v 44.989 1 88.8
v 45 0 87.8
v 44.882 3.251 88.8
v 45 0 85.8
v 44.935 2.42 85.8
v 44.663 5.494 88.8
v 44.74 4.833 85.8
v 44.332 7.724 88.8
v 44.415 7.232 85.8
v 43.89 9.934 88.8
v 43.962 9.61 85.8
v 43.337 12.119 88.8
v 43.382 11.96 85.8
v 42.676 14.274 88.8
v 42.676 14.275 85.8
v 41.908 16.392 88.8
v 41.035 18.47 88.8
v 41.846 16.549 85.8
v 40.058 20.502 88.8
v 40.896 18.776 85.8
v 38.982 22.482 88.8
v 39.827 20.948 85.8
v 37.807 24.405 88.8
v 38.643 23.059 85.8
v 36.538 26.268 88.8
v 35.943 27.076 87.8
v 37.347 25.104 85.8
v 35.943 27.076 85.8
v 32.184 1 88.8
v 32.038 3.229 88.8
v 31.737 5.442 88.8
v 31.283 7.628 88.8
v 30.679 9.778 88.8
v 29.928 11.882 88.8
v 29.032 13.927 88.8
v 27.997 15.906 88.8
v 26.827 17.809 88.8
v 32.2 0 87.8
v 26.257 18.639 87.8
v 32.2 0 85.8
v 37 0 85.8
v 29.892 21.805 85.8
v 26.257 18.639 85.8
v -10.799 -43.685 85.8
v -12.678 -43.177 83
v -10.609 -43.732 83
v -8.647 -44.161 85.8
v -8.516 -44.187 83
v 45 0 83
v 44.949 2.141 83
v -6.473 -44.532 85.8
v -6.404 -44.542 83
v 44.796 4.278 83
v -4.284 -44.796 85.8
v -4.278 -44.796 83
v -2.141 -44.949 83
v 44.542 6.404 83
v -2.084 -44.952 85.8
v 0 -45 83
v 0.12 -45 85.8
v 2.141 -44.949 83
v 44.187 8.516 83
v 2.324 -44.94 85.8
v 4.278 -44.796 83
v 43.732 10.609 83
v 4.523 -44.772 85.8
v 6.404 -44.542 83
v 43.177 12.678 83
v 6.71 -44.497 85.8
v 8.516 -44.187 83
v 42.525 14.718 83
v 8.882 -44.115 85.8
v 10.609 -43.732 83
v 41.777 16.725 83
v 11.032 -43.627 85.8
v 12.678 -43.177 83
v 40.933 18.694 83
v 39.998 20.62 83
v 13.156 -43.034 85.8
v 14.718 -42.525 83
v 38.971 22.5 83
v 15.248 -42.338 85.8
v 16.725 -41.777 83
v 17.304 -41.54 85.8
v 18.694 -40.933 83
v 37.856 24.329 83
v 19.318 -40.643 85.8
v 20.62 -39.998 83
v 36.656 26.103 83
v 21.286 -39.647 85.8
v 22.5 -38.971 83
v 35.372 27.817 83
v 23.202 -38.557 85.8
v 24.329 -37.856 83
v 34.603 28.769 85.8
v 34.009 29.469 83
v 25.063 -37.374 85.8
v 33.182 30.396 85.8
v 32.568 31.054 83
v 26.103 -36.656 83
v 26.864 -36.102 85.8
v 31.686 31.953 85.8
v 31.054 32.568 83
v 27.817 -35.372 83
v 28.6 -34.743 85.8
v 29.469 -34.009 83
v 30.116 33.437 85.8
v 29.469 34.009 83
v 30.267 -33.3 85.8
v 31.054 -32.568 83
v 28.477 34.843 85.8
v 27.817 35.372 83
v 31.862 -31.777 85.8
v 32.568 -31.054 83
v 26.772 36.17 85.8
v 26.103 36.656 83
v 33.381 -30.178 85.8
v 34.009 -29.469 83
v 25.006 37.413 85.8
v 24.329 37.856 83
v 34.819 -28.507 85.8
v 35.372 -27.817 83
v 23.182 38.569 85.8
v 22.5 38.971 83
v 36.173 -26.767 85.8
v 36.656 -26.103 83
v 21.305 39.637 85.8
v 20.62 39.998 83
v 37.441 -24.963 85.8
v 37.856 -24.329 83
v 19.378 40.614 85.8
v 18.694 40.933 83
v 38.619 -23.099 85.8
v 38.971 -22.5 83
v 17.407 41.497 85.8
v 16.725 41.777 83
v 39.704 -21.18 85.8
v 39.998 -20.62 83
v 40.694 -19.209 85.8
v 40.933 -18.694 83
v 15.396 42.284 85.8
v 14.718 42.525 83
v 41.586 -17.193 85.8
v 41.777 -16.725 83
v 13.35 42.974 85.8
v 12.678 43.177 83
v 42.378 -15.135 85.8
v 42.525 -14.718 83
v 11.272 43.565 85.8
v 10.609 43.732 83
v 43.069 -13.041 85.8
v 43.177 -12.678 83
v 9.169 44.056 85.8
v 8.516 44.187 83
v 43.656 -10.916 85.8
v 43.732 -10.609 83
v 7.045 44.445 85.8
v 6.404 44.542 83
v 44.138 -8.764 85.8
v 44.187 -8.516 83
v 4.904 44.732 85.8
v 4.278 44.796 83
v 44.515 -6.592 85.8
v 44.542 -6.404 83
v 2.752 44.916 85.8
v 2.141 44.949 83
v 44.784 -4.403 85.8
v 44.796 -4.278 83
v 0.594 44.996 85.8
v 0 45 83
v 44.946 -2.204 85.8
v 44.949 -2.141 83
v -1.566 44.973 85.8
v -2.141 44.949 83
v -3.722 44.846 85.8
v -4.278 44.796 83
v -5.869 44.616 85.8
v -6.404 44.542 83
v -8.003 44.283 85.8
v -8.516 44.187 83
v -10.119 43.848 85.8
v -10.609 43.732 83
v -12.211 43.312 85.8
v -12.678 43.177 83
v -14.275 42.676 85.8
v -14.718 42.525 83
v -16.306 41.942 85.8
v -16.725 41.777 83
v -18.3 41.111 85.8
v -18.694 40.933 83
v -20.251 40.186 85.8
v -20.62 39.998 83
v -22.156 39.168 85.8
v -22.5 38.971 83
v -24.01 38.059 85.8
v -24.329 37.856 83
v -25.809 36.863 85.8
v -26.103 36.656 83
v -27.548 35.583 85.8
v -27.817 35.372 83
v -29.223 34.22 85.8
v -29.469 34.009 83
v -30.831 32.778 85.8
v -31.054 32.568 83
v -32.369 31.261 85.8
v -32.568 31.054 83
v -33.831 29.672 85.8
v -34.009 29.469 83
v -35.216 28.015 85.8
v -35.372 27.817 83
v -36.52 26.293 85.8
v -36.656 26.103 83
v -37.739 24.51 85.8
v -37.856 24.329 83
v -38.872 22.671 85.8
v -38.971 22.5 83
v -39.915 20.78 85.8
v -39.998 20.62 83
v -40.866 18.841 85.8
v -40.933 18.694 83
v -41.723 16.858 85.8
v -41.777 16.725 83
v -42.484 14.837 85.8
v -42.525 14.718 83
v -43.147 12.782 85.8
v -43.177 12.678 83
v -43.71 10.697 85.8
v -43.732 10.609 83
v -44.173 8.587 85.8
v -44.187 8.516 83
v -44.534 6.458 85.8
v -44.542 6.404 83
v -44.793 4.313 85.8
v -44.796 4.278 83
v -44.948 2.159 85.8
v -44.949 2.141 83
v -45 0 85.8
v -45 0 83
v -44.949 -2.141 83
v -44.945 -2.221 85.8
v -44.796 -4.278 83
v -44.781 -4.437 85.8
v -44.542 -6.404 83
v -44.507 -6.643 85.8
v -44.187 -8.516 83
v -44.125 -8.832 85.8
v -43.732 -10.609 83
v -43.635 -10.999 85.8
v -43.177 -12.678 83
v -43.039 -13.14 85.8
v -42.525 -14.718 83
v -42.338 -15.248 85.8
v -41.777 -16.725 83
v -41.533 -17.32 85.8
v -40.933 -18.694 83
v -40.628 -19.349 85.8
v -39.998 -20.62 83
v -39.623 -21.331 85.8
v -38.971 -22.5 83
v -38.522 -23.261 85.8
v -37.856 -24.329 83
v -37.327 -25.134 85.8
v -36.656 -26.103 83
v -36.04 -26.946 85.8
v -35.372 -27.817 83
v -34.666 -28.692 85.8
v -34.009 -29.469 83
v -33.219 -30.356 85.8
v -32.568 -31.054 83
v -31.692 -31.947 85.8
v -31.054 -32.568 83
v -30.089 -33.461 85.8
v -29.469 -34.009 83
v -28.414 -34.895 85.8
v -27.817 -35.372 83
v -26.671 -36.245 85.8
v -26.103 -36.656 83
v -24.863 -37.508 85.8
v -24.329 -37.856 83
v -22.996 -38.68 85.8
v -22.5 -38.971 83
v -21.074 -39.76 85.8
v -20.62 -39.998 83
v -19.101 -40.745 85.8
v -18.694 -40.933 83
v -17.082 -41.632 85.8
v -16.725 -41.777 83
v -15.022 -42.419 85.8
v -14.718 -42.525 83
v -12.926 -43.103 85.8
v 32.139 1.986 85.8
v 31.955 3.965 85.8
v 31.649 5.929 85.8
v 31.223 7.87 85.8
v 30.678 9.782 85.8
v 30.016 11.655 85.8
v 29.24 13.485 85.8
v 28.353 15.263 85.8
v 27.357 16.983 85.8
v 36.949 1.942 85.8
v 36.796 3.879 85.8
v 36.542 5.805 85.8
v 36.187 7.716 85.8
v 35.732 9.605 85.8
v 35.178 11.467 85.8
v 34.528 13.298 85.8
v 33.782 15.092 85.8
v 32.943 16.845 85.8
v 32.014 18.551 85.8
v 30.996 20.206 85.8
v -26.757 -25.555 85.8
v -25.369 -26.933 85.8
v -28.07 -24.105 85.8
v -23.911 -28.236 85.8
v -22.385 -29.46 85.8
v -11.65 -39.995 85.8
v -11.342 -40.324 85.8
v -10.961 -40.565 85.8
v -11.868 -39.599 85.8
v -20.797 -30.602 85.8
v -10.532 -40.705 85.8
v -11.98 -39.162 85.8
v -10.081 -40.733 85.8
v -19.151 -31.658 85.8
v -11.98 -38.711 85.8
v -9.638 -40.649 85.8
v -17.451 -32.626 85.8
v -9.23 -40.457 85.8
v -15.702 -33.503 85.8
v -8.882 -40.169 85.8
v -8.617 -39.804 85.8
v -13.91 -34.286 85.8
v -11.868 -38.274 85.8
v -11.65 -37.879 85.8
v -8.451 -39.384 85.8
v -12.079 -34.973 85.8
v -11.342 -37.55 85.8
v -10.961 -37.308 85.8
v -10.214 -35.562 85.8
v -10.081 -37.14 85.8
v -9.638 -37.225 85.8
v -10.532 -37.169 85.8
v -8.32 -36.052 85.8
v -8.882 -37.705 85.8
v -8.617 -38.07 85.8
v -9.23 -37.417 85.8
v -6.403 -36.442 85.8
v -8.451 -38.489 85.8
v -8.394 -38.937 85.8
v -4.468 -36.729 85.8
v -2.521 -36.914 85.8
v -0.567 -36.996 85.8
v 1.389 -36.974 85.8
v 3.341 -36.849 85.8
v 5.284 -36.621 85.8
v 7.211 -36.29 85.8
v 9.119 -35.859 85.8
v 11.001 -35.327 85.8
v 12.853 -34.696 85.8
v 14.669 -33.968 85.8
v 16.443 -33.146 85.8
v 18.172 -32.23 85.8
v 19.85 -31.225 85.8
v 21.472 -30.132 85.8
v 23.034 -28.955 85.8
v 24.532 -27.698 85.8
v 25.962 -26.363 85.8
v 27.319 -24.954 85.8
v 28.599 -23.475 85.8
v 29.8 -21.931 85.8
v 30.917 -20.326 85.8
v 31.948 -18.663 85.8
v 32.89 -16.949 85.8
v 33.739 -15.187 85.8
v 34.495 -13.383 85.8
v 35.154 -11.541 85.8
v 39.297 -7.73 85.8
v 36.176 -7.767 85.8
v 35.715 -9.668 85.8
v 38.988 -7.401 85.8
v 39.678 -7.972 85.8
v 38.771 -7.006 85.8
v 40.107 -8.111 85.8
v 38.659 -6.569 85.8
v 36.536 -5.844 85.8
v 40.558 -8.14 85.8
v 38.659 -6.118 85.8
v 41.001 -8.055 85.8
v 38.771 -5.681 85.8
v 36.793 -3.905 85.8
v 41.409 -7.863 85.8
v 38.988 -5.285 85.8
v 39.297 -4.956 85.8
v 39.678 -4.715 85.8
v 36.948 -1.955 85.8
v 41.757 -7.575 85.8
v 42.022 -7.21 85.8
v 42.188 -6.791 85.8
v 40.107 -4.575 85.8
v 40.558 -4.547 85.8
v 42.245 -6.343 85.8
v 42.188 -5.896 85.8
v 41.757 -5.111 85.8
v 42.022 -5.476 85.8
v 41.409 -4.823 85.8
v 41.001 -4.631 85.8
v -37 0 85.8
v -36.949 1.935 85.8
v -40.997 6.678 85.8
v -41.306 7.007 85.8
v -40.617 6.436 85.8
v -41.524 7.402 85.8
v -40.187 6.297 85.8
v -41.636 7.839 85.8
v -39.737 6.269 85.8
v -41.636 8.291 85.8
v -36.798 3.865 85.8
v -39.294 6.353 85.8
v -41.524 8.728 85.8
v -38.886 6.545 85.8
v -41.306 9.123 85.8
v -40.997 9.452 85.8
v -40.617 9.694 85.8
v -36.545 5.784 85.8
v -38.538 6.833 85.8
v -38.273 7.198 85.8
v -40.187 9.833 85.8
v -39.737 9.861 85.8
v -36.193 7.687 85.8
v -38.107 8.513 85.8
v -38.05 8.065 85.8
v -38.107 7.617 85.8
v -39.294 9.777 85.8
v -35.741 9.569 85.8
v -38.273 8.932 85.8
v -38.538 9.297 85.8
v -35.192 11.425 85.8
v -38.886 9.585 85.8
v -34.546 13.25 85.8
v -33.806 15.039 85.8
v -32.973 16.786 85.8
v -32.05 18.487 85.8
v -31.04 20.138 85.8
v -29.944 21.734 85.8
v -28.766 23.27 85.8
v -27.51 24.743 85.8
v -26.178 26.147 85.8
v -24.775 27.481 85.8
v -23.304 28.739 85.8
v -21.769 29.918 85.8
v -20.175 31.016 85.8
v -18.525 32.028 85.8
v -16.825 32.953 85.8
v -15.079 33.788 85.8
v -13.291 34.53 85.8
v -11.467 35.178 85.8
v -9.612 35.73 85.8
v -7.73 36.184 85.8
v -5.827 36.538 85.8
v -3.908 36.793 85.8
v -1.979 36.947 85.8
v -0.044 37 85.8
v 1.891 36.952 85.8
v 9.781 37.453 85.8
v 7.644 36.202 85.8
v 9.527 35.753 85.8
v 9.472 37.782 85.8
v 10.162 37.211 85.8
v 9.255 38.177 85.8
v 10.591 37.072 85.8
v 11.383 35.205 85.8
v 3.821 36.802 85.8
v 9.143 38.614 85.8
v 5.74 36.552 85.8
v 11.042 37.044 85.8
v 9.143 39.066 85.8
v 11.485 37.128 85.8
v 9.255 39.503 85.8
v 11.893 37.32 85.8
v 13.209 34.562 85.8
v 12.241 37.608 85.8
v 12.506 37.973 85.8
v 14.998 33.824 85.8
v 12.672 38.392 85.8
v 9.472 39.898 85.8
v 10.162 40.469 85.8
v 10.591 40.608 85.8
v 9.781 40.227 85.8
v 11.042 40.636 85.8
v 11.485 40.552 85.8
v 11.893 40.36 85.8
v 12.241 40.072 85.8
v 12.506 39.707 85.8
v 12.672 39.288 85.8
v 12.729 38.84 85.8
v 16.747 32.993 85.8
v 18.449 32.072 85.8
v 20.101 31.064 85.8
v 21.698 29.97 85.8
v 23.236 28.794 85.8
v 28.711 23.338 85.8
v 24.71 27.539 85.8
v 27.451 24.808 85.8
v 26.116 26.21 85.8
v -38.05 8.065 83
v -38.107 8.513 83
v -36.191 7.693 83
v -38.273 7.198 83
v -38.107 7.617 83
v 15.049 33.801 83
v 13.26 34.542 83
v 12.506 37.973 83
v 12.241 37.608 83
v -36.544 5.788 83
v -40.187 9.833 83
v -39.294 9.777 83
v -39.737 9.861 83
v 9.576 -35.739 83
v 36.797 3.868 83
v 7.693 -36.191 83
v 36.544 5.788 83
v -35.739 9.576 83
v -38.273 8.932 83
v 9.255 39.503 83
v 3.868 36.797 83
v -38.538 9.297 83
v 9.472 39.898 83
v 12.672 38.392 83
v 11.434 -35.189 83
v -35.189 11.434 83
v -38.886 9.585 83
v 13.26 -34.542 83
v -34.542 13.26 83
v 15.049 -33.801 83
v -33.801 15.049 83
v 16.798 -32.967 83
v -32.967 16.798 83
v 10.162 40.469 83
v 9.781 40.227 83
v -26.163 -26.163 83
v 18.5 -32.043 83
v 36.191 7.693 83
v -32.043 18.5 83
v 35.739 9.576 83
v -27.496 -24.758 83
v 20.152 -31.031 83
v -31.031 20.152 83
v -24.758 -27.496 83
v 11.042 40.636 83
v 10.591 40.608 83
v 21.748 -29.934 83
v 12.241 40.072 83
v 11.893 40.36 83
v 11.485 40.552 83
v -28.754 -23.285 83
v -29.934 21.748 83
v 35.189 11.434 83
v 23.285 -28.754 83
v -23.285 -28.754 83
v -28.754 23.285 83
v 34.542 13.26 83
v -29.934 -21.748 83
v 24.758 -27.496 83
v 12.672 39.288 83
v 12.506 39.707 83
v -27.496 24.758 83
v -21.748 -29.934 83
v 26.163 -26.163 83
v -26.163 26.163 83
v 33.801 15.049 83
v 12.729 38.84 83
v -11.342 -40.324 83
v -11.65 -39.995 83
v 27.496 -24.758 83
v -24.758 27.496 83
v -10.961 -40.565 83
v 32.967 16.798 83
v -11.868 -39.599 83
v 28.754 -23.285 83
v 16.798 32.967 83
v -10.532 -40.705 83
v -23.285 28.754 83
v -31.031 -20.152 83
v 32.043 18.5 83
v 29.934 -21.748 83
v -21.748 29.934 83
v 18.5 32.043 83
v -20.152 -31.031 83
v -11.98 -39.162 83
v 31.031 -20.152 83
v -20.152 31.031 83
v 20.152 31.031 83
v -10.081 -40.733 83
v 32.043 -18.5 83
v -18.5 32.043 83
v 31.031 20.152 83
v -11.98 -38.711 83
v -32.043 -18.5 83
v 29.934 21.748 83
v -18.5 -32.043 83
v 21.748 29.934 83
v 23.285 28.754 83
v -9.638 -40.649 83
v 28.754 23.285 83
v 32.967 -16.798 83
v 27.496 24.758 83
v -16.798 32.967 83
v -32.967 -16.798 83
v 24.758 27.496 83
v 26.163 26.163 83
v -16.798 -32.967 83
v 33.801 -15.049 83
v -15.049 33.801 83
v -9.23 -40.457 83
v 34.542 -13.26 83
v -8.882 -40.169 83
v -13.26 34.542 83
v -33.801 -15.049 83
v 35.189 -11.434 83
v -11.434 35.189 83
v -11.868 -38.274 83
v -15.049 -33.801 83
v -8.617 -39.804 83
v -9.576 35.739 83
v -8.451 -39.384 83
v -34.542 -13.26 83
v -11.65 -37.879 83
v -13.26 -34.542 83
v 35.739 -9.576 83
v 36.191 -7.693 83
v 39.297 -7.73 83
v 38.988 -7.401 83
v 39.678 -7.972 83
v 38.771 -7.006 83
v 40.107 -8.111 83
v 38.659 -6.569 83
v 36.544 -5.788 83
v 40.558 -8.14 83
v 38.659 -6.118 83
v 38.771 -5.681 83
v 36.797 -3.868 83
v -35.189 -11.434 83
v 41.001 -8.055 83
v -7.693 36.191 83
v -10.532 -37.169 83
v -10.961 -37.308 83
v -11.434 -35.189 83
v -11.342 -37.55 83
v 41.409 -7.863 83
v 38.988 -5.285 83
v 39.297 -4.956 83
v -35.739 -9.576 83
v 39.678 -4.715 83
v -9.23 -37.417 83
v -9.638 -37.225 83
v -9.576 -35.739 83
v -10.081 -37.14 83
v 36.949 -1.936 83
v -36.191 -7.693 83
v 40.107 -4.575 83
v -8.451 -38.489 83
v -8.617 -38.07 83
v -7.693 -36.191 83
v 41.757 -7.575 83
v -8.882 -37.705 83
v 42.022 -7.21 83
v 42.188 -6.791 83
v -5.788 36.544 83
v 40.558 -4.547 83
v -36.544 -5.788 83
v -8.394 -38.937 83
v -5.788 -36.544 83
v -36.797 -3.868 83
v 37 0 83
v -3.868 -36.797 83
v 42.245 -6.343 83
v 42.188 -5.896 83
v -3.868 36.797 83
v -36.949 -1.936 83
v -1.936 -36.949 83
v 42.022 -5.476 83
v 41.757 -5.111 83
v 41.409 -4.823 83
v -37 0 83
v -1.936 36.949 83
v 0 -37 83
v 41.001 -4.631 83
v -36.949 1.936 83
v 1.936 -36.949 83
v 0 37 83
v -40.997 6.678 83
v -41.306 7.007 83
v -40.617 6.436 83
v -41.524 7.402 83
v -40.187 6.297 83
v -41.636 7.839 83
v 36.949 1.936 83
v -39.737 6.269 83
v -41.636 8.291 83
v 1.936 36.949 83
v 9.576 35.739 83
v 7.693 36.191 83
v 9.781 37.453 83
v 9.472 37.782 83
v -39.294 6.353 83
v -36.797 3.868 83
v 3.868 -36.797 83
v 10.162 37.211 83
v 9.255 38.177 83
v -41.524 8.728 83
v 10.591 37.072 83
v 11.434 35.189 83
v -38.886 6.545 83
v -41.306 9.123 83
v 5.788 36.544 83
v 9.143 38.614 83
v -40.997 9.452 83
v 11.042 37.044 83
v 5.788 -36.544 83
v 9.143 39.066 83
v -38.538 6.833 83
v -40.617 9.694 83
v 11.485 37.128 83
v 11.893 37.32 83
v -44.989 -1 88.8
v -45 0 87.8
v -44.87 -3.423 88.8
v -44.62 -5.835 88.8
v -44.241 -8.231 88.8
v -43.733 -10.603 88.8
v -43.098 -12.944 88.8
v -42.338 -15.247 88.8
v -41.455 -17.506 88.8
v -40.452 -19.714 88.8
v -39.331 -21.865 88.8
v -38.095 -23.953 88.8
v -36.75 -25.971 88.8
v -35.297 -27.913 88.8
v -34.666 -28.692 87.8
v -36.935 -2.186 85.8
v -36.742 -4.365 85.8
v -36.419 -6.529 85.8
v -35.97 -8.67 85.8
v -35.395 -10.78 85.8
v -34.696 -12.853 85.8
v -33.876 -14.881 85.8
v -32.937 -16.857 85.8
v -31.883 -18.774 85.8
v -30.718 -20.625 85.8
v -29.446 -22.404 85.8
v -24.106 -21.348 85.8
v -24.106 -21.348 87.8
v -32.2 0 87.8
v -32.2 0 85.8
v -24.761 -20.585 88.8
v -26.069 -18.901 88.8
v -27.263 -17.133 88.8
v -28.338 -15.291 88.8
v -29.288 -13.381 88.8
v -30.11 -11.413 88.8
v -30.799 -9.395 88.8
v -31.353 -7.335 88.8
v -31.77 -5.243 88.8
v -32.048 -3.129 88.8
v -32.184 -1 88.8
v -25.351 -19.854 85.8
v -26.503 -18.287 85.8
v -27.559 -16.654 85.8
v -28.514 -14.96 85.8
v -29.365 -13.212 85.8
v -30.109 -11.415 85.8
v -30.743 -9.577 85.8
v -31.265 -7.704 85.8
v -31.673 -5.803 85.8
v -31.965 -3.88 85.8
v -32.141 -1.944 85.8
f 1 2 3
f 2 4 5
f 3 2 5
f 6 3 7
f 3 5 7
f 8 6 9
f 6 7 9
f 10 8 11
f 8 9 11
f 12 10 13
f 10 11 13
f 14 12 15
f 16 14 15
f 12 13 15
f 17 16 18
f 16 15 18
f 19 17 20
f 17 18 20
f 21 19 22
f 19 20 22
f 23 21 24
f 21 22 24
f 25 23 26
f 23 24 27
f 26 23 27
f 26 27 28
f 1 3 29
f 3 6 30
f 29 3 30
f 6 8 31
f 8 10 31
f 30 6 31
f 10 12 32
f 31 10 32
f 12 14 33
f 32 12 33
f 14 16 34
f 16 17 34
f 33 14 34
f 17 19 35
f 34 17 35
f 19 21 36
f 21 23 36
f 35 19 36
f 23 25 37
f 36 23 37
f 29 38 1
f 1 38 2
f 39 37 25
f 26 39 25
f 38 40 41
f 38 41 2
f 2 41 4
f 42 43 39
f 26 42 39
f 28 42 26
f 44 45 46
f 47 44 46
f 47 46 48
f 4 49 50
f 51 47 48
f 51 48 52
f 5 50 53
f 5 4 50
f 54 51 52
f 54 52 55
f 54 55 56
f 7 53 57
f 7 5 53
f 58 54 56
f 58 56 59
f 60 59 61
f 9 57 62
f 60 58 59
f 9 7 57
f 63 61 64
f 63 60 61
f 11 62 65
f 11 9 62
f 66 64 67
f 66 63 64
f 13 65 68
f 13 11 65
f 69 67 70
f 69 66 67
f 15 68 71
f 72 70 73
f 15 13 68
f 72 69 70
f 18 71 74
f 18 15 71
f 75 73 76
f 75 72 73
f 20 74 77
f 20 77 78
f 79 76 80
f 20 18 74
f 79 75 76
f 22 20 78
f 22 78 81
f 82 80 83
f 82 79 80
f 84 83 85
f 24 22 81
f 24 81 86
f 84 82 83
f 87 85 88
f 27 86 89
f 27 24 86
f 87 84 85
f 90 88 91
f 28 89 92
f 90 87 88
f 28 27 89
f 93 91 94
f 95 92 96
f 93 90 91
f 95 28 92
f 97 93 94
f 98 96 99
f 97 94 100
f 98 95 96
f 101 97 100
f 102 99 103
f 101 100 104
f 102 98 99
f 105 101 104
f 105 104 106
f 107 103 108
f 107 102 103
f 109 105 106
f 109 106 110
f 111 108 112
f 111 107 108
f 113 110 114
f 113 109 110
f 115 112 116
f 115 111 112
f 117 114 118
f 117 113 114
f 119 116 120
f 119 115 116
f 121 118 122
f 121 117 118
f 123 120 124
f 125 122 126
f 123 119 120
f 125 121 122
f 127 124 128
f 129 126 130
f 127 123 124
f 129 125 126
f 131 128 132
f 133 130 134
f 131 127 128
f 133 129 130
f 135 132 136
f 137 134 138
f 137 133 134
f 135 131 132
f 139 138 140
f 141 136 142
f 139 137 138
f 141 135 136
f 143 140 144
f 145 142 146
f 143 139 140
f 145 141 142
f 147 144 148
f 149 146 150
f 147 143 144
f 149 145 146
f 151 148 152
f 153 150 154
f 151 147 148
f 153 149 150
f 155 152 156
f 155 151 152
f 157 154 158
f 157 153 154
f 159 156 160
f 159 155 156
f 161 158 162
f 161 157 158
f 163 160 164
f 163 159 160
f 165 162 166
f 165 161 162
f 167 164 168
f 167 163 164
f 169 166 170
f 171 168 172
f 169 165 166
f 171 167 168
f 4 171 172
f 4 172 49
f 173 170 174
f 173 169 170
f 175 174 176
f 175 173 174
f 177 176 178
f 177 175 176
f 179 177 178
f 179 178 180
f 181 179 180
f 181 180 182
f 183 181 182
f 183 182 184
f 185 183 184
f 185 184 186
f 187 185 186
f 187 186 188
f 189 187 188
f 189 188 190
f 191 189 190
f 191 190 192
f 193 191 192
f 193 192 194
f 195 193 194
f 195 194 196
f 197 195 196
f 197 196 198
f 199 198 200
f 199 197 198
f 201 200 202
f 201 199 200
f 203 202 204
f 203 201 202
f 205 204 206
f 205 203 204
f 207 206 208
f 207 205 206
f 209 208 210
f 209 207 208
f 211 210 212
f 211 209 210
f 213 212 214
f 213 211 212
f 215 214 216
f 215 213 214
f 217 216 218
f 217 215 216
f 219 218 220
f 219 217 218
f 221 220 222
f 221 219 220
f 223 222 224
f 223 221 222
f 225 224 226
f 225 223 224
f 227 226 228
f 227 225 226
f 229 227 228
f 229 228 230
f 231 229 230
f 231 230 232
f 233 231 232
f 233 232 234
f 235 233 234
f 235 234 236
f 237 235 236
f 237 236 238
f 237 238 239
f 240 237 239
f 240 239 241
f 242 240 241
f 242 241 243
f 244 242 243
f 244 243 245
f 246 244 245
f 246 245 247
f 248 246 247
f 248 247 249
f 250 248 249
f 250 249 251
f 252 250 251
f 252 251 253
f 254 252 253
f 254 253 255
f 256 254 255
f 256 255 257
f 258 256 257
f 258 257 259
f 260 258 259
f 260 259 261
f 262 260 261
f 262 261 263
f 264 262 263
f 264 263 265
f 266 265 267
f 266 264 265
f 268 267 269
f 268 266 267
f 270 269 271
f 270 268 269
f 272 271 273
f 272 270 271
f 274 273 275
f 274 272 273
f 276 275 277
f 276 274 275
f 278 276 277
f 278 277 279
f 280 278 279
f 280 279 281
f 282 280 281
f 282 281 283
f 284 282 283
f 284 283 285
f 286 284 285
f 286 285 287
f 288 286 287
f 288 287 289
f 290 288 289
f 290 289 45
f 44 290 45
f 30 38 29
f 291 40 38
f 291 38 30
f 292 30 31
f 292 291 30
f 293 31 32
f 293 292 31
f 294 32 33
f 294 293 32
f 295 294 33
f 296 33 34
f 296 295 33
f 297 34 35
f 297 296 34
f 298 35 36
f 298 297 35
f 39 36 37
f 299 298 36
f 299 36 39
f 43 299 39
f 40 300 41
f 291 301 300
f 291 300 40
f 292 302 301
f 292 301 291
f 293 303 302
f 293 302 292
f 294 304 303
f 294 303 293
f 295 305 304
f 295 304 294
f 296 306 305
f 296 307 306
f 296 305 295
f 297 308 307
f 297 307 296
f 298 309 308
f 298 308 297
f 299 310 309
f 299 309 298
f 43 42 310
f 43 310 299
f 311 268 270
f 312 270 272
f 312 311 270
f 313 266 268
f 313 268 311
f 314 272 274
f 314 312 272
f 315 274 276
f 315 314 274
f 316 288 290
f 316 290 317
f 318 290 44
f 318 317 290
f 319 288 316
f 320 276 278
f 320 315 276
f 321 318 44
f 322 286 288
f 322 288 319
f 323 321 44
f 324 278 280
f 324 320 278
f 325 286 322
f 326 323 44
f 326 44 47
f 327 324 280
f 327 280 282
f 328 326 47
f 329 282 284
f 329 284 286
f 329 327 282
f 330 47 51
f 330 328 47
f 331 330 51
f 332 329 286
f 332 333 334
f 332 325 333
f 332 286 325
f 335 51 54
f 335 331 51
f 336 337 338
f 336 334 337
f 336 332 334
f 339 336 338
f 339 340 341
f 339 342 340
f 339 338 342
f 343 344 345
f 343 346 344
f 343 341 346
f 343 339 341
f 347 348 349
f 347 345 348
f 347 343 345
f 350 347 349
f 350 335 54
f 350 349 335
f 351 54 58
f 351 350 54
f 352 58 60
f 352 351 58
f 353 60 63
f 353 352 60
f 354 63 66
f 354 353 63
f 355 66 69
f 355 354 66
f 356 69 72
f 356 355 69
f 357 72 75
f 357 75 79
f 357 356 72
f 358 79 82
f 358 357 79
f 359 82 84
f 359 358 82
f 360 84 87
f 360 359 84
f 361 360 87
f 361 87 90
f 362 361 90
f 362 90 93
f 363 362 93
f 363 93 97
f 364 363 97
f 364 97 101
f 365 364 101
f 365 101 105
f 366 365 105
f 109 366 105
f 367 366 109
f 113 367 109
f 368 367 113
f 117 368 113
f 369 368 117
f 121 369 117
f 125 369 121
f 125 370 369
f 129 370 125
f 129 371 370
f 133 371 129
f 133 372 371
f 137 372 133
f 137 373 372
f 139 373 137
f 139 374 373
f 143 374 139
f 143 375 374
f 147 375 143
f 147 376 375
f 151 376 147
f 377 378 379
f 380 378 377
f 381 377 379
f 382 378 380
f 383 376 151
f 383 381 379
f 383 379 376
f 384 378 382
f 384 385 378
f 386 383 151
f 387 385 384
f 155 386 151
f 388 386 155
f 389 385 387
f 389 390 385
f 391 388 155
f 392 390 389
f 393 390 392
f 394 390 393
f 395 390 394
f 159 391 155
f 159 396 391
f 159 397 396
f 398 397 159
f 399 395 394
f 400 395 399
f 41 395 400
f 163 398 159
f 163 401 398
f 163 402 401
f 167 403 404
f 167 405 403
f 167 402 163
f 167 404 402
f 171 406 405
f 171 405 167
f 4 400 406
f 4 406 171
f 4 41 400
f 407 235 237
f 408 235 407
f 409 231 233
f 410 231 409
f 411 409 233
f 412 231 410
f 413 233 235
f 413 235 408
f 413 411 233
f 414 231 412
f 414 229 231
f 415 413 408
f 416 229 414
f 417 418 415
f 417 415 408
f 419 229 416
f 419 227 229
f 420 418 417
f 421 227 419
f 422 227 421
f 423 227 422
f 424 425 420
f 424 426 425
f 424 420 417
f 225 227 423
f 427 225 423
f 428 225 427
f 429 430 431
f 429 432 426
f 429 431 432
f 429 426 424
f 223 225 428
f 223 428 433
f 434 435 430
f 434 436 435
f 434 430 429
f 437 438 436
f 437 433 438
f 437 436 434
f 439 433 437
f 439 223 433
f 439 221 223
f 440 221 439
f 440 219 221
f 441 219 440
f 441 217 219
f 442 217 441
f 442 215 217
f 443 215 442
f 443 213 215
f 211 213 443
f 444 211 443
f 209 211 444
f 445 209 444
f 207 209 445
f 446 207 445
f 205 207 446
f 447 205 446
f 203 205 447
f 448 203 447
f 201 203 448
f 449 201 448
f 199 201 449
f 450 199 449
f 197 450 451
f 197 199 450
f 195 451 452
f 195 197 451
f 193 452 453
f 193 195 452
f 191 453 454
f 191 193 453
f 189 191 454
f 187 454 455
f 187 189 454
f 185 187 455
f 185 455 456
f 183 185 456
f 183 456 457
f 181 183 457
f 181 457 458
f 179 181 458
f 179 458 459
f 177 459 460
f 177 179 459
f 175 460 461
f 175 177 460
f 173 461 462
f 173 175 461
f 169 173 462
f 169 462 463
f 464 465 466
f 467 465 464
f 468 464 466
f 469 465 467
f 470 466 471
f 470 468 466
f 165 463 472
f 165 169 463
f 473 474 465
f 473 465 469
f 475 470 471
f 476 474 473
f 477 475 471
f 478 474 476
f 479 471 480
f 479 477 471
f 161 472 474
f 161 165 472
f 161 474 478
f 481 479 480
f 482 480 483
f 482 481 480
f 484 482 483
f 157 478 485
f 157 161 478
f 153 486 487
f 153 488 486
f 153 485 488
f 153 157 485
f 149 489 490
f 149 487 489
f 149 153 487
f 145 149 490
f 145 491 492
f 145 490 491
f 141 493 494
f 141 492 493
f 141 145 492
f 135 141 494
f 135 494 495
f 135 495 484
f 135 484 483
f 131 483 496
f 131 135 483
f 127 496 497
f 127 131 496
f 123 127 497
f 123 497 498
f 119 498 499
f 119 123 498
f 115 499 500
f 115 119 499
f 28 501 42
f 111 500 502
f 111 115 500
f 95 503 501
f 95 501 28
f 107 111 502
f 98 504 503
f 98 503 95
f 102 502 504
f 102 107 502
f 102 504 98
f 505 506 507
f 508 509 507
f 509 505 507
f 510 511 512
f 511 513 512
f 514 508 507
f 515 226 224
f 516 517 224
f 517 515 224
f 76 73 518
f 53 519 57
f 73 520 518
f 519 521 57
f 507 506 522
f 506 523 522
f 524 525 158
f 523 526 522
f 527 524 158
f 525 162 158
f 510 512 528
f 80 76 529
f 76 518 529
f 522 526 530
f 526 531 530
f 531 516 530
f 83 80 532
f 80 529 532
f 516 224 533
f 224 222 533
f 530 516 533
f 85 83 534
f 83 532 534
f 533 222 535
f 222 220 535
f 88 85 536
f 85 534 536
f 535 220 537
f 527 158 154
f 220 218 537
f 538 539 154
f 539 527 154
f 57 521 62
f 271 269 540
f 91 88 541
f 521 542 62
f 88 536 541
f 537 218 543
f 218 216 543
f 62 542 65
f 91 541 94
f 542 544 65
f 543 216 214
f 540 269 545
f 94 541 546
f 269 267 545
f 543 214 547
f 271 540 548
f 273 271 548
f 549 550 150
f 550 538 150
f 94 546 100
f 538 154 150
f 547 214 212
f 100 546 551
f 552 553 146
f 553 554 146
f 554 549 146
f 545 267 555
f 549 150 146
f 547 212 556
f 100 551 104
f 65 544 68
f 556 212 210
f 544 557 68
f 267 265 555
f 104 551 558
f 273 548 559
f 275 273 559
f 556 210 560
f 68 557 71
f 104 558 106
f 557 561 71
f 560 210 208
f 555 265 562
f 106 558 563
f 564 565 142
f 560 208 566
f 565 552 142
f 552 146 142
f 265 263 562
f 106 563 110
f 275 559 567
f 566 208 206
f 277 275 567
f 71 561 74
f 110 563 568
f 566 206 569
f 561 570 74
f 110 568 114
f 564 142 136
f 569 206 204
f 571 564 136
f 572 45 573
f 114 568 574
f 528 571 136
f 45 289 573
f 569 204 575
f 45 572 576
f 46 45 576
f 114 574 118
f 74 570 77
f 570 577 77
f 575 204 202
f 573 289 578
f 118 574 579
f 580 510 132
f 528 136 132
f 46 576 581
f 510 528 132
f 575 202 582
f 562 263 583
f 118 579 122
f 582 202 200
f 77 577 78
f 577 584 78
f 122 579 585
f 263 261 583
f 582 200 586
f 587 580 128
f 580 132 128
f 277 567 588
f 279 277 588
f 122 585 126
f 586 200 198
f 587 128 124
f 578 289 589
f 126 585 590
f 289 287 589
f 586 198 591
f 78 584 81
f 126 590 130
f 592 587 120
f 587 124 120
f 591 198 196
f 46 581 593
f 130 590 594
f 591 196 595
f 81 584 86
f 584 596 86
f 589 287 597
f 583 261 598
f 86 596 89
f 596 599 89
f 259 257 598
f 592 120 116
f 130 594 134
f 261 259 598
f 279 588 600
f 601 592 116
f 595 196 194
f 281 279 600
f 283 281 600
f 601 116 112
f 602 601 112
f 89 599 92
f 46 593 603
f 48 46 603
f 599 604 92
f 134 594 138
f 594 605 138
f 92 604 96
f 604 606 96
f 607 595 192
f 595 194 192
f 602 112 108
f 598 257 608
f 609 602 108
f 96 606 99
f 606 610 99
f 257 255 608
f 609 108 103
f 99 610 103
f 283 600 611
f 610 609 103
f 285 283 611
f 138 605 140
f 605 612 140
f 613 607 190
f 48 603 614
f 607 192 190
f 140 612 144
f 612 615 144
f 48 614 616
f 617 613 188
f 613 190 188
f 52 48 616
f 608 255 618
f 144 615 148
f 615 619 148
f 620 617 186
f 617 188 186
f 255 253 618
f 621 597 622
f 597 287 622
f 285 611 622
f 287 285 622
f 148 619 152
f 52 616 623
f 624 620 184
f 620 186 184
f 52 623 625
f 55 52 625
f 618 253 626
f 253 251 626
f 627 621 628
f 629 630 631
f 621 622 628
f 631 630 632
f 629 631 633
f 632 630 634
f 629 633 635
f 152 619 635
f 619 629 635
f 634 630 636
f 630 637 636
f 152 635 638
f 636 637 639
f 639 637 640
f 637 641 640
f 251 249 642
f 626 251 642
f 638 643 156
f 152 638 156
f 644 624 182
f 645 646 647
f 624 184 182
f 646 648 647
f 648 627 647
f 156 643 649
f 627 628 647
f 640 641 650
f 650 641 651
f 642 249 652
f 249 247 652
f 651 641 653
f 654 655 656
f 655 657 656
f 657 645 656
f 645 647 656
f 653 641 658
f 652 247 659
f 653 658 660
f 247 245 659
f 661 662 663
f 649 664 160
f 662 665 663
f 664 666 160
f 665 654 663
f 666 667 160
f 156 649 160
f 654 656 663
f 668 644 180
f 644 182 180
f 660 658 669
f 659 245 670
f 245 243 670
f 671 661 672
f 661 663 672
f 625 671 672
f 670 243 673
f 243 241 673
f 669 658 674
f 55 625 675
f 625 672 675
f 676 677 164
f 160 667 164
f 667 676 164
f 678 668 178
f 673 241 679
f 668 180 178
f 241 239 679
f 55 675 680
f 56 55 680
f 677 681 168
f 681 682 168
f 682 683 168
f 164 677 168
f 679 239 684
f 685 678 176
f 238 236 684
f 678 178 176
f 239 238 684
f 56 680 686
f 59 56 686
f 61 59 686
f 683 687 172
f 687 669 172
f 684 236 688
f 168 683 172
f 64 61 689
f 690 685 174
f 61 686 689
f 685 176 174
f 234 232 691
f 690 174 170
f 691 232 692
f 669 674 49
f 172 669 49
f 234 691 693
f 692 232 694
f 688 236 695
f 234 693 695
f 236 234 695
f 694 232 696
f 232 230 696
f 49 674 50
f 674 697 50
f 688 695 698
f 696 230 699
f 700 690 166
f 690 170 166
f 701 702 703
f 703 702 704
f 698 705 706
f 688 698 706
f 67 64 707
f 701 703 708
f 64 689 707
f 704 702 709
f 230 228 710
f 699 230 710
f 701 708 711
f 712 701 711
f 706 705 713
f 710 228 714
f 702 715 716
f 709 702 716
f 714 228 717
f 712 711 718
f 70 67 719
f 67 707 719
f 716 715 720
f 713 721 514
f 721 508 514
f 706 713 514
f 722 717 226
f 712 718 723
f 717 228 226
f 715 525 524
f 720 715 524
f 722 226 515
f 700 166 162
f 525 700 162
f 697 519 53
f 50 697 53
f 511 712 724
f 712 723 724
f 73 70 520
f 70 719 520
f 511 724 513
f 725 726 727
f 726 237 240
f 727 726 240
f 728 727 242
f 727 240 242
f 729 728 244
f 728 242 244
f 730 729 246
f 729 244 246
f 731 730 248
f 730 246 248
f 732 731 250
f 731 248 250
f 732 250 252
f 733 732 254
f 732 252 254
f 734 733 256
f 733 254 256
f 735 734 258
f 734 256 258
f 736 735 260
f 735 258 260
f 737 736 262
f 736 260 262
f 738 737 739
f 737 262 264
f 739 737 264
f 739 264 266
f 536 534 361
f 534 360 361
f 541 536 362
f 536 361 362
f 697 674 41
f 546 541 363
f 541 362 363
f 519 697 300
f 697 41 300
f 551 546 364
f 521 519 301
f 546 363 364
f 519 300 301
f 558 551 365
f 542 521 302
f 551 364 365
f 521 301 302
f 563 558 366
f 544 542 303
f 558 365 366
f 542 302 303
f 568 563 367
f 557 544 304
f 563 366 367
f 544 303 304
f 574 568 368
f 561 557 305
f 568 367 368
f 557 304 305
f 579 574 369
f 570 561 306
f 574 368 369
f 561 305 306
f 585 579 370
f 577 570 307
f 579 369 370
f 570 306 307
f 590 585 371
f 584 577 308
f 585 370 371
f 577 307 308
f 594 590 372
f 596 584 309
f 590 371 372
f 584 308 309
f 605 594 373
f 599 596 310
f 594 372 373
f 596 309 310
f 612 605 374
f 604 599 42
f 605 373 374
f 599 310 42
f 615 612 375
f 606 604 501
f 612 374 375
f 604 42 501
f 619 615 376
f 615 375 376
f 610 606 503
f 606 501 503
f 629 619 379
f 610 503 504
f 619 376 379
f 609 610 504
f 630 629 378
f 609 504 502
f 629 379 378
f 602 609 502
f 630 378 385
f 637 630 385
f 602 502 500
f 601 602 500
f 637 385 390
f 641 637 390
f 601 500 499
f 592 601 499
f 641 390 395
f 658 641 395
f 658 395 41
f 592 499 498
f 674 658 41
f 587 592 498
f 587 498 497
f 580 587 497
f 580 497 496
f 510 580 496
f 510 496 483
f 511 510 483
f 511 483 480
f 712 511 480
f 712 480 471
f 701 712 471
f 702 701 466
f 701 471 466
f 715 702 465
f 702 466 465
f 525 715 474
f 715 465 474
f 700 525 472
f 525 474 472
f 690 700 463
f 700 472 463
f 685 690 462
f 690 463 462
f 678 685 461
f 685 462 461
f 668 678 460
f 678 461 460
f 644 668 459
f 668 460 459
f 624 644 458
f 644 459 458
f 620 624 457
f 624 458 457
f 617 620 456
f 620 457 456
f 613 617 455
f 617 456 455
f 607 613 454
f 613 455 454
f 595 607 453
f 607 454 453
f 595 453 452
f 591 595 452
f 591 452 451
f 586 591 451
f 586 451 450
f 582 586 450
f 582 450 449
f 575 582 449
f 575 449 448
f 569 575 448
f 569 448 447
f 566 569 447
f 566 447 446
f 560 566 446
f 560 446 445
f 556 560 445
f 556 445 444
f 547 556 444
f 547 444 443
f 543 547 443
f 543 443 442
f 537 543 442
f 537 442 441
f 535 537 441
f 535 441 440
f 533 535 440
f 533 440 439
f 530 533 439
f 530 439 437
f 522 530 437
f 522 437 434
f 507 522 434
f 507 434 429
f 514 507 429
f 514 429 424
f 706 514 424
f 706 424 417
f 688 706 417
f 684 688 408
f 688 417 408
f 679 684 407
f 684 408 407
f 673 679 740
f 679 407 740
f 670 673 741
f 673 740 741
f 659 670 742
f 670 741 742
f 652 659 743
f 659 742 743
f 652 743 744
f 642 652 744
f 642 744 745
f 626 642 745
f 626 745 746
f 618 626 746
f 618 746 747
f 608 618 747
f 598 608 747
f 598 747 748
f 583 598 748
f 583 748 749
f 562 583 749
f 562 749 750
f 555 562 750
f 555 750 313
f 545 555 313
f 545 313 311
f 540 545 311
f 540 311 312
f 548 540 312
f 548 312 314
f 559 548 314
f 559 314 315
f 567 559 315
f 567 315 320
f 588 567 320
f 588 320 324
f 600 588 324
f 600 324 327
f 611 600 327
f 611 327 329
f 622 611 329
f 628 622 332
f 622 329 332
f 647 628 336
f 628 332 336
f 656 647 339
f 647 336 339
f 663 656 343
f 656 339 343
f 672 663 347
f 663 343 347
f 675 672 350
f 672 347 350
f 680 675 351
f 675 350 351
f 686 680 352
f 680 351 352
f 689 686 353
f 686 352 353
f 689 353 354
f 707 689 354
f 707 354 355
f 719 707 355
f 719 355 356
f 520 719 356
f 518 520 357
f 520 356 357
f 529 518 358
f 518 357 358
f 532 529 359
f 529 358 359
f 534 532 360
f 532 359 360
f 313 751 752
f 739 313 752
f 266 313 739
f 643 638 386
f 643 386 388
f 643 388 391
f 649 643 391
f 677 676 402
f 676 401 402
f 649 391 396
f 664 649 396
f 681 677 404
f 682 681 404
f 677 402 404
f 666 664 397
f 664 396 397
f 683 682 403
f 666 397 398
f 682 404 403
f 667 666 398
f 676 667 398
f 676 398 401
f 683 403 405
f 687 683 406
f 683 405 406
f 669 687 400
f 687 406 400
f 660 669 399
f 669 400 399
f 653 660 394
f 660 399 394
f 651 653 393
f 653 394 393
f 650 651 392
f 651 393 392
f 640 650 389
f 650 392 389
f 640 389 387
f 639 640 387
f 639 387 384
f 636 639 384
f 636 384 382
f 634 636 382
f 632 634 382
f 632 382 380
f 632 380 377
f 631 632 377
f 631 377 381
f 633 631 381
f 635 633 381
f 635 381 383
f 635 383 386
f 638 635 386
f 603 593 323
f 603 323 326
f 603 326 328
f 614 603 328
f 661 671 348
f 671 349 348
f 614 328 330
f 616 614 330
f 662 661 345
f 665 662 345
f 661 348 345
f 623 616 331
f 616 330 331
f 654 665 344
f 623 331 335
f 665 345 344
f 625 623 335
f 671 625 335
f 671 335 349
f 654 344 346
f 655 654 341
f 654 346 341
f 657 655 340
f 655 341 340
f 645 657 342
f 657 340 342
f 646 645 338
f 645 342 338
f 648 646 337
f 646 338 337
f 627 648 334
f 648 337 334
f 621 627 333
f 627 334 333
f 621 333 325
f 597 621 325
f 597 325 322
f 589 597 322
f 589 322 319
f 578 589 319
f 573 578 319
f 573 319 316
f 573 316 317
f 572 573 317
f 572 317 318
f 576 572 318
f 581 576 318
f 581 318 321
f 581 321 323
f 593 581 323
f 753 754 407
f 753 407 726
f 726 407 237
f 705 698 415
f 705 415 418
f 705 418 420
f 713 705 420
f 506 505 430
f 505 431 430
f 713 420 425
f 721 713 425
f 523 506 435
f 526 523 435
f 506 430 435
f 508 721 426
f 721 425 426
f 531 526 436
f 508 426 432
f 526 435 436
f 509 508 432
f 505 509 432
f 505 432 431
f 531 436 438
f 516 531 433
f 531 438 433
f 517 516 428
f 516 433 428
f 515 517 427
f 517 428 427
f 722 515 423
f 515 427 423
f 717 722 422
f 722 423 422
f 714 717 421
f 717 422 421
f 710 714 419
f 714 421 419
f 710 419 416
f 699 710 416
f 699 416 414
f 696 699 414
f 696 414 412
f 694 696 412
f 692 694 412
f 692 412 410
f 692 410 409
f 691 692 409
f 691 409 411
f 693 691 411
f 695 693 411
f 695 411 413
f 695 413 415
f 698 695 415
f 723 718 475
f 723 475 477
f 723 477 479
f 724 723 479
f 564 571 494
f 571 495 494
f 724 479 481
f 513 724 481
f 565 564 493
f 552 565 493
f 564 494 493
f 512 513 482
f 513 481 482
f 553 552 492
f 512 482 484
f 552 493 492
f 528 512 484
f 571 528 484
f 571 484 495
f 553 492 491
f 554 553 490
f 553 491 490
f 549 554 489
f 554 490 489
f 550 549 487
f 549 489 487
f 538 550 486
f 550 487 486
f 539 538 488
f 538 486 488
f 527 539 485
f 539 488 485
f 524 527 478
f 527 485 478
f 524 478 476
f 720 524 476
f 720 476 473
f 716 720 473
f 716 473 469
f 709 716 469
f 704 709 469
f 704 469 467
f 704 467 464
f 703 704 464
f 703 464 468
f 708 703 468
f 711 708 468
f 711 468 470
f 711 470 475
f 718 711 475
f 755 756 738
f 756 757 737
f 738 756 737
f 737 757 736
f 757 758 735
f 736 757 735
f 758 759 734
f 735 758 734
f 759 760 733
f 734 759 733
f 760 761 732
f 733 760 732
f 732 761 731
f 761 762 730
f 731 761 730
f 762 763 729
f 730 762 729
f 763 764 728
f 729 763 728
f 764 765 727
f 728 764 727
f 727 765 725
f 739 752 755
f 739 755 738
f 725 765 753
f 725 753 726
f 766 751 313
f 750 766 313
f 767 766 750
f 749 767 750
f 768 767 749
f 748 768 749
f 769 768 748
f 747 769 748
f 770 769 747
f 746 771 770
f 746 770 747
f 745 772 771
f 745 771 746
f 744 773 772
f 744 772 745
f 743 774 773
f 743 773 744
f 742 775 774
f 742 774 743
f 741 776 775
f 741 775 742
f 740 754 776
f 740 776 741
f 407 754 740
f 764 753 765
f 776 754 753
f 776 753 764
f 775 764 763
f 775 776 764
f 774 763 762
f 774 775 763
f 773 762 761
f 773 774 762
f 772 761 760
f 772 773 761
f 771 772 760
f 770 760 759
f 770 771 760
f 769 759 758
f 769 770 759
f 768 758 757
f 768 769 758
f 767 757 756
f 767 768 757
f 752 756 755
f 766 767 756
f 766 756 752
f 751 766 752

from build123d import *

# Parameters (mm, degrees)
CYLINDER009_R     = 37
CYLINDER009_DEPTH = 2.8
CYLINDER010_R     = 45
CYLINDER010_DEPTH = 2.8
SKETCH005_R       = 1.8
POCKET003_DEPTH   = 5
PAD_DEPTH         = 3
CHAMFER_SIZE      = 1
CHAMFER001_SIZE   = 1
CHAMFER002_SIZE   = 1
CHAMFER003_SIZE   = 1


with BuildPart() as cylinder009:
    # Cylinder009 → Cylinder009 (new body)
    with BuildSketch(Plane.XY.offset(83)):
        Circle(CYLINDER009_R)
    extrude(amount=CYLINDER009_DEPTH)


with BuildPart() as chamfer003:
    # Cylinder010 → Cylinder010 (new body)
    with BuildSketch(Plane.XY.offset(83)):
        Circle(CYLINDER010_R)
    extrude(amount=CYLINDER010_DEPTH)

    # Cut008: cut Cylinder009
    add(cylinder009.part, mode=Mode.SUBTRACT)

    # Sketch005 → Pocket003 (cut)
    with BuildSketch(Plane.XY.offset(85.8)):
        with Locations((10.92856, 38.840008)):
            Circle(SKETCH005_R)
        with Locations((40.444542, -6.343234)):
            Circle(SKETCH005_R)
        with Locations((-10.194257, -38.936714)):
            Circle(SKETCH005_R)
        with Locations((-39.850128, 8.065043)):
            Circle(SKETCH005_R)
    extrude(amount=-POCKET003_DEPTH, mode=Mode.SUBTRACT)

    # Sketch006 → Pad (new body)
    with BuildSketch(Plane.XY.offset(85.8)):
        with BuildLine():
            ThreePointArc((32.2, 0), (30.678353, 9.781545), (26.257228, 18.638615))
            Line((26.257228, 18.638615), (35.943074, 27.075735))
            ThreePointArc((45, 0), (42.675744, 14.275182), (35.943074, 27.075735))
            Line((32.2, 0), (45, 0))
        make_face()
        with BuildLine():
            ThreePointArc((-32.2, 0), (-30.108619, -11.415388), (-24.106144, -21.347923))
            Line((-24.106144, -21.347923), (-34.666195, -28.692419))
            ThreePointArc((-45, 0), (-42.337801, -15.248299), (-34.666195, -28.692419))
            Line((-32.2, 0), (-45, 0))
        make_face()
    extrude(amount=PAD_DEPTH)

    # Chamfer
    chamfer_edges = [chamfer003.edges().sort_by_distance(p)[0] for p in [
        (-38.6, 0, 88.8),
    ]]
    chamfer(chamfer_edges, length=CHAMFER_SIZE)

    # Chamfer001
    chamfer001_edges = [chamfer003.edges().sort_by_distance(p)[0] for p in [
        (-29.38617, -25.020171, 88.8),
    ]]
    chamfer(chamfer001_edges, length=CHAMFER001_SIZE)

    # Chamfer002
    chamfer002_edges = [chamfer003.edges().sort_by_distance(p)[0] for p in [
        (31.100151, 22.857175, 88.8),
    ]]
    chamfer(chamfer002_edges, length=CHAMFER002_SIZE)

    # Chamfer003
    chamfer003_edges = [chamfer003.edges().sort_by_distance(p)[0] for p in [
        (38.6, 0, 88.8),
    ]]
    chamfer(chamfer003_edges, length=CHAMFER003_SIZE)


solid = chamfer003.part
